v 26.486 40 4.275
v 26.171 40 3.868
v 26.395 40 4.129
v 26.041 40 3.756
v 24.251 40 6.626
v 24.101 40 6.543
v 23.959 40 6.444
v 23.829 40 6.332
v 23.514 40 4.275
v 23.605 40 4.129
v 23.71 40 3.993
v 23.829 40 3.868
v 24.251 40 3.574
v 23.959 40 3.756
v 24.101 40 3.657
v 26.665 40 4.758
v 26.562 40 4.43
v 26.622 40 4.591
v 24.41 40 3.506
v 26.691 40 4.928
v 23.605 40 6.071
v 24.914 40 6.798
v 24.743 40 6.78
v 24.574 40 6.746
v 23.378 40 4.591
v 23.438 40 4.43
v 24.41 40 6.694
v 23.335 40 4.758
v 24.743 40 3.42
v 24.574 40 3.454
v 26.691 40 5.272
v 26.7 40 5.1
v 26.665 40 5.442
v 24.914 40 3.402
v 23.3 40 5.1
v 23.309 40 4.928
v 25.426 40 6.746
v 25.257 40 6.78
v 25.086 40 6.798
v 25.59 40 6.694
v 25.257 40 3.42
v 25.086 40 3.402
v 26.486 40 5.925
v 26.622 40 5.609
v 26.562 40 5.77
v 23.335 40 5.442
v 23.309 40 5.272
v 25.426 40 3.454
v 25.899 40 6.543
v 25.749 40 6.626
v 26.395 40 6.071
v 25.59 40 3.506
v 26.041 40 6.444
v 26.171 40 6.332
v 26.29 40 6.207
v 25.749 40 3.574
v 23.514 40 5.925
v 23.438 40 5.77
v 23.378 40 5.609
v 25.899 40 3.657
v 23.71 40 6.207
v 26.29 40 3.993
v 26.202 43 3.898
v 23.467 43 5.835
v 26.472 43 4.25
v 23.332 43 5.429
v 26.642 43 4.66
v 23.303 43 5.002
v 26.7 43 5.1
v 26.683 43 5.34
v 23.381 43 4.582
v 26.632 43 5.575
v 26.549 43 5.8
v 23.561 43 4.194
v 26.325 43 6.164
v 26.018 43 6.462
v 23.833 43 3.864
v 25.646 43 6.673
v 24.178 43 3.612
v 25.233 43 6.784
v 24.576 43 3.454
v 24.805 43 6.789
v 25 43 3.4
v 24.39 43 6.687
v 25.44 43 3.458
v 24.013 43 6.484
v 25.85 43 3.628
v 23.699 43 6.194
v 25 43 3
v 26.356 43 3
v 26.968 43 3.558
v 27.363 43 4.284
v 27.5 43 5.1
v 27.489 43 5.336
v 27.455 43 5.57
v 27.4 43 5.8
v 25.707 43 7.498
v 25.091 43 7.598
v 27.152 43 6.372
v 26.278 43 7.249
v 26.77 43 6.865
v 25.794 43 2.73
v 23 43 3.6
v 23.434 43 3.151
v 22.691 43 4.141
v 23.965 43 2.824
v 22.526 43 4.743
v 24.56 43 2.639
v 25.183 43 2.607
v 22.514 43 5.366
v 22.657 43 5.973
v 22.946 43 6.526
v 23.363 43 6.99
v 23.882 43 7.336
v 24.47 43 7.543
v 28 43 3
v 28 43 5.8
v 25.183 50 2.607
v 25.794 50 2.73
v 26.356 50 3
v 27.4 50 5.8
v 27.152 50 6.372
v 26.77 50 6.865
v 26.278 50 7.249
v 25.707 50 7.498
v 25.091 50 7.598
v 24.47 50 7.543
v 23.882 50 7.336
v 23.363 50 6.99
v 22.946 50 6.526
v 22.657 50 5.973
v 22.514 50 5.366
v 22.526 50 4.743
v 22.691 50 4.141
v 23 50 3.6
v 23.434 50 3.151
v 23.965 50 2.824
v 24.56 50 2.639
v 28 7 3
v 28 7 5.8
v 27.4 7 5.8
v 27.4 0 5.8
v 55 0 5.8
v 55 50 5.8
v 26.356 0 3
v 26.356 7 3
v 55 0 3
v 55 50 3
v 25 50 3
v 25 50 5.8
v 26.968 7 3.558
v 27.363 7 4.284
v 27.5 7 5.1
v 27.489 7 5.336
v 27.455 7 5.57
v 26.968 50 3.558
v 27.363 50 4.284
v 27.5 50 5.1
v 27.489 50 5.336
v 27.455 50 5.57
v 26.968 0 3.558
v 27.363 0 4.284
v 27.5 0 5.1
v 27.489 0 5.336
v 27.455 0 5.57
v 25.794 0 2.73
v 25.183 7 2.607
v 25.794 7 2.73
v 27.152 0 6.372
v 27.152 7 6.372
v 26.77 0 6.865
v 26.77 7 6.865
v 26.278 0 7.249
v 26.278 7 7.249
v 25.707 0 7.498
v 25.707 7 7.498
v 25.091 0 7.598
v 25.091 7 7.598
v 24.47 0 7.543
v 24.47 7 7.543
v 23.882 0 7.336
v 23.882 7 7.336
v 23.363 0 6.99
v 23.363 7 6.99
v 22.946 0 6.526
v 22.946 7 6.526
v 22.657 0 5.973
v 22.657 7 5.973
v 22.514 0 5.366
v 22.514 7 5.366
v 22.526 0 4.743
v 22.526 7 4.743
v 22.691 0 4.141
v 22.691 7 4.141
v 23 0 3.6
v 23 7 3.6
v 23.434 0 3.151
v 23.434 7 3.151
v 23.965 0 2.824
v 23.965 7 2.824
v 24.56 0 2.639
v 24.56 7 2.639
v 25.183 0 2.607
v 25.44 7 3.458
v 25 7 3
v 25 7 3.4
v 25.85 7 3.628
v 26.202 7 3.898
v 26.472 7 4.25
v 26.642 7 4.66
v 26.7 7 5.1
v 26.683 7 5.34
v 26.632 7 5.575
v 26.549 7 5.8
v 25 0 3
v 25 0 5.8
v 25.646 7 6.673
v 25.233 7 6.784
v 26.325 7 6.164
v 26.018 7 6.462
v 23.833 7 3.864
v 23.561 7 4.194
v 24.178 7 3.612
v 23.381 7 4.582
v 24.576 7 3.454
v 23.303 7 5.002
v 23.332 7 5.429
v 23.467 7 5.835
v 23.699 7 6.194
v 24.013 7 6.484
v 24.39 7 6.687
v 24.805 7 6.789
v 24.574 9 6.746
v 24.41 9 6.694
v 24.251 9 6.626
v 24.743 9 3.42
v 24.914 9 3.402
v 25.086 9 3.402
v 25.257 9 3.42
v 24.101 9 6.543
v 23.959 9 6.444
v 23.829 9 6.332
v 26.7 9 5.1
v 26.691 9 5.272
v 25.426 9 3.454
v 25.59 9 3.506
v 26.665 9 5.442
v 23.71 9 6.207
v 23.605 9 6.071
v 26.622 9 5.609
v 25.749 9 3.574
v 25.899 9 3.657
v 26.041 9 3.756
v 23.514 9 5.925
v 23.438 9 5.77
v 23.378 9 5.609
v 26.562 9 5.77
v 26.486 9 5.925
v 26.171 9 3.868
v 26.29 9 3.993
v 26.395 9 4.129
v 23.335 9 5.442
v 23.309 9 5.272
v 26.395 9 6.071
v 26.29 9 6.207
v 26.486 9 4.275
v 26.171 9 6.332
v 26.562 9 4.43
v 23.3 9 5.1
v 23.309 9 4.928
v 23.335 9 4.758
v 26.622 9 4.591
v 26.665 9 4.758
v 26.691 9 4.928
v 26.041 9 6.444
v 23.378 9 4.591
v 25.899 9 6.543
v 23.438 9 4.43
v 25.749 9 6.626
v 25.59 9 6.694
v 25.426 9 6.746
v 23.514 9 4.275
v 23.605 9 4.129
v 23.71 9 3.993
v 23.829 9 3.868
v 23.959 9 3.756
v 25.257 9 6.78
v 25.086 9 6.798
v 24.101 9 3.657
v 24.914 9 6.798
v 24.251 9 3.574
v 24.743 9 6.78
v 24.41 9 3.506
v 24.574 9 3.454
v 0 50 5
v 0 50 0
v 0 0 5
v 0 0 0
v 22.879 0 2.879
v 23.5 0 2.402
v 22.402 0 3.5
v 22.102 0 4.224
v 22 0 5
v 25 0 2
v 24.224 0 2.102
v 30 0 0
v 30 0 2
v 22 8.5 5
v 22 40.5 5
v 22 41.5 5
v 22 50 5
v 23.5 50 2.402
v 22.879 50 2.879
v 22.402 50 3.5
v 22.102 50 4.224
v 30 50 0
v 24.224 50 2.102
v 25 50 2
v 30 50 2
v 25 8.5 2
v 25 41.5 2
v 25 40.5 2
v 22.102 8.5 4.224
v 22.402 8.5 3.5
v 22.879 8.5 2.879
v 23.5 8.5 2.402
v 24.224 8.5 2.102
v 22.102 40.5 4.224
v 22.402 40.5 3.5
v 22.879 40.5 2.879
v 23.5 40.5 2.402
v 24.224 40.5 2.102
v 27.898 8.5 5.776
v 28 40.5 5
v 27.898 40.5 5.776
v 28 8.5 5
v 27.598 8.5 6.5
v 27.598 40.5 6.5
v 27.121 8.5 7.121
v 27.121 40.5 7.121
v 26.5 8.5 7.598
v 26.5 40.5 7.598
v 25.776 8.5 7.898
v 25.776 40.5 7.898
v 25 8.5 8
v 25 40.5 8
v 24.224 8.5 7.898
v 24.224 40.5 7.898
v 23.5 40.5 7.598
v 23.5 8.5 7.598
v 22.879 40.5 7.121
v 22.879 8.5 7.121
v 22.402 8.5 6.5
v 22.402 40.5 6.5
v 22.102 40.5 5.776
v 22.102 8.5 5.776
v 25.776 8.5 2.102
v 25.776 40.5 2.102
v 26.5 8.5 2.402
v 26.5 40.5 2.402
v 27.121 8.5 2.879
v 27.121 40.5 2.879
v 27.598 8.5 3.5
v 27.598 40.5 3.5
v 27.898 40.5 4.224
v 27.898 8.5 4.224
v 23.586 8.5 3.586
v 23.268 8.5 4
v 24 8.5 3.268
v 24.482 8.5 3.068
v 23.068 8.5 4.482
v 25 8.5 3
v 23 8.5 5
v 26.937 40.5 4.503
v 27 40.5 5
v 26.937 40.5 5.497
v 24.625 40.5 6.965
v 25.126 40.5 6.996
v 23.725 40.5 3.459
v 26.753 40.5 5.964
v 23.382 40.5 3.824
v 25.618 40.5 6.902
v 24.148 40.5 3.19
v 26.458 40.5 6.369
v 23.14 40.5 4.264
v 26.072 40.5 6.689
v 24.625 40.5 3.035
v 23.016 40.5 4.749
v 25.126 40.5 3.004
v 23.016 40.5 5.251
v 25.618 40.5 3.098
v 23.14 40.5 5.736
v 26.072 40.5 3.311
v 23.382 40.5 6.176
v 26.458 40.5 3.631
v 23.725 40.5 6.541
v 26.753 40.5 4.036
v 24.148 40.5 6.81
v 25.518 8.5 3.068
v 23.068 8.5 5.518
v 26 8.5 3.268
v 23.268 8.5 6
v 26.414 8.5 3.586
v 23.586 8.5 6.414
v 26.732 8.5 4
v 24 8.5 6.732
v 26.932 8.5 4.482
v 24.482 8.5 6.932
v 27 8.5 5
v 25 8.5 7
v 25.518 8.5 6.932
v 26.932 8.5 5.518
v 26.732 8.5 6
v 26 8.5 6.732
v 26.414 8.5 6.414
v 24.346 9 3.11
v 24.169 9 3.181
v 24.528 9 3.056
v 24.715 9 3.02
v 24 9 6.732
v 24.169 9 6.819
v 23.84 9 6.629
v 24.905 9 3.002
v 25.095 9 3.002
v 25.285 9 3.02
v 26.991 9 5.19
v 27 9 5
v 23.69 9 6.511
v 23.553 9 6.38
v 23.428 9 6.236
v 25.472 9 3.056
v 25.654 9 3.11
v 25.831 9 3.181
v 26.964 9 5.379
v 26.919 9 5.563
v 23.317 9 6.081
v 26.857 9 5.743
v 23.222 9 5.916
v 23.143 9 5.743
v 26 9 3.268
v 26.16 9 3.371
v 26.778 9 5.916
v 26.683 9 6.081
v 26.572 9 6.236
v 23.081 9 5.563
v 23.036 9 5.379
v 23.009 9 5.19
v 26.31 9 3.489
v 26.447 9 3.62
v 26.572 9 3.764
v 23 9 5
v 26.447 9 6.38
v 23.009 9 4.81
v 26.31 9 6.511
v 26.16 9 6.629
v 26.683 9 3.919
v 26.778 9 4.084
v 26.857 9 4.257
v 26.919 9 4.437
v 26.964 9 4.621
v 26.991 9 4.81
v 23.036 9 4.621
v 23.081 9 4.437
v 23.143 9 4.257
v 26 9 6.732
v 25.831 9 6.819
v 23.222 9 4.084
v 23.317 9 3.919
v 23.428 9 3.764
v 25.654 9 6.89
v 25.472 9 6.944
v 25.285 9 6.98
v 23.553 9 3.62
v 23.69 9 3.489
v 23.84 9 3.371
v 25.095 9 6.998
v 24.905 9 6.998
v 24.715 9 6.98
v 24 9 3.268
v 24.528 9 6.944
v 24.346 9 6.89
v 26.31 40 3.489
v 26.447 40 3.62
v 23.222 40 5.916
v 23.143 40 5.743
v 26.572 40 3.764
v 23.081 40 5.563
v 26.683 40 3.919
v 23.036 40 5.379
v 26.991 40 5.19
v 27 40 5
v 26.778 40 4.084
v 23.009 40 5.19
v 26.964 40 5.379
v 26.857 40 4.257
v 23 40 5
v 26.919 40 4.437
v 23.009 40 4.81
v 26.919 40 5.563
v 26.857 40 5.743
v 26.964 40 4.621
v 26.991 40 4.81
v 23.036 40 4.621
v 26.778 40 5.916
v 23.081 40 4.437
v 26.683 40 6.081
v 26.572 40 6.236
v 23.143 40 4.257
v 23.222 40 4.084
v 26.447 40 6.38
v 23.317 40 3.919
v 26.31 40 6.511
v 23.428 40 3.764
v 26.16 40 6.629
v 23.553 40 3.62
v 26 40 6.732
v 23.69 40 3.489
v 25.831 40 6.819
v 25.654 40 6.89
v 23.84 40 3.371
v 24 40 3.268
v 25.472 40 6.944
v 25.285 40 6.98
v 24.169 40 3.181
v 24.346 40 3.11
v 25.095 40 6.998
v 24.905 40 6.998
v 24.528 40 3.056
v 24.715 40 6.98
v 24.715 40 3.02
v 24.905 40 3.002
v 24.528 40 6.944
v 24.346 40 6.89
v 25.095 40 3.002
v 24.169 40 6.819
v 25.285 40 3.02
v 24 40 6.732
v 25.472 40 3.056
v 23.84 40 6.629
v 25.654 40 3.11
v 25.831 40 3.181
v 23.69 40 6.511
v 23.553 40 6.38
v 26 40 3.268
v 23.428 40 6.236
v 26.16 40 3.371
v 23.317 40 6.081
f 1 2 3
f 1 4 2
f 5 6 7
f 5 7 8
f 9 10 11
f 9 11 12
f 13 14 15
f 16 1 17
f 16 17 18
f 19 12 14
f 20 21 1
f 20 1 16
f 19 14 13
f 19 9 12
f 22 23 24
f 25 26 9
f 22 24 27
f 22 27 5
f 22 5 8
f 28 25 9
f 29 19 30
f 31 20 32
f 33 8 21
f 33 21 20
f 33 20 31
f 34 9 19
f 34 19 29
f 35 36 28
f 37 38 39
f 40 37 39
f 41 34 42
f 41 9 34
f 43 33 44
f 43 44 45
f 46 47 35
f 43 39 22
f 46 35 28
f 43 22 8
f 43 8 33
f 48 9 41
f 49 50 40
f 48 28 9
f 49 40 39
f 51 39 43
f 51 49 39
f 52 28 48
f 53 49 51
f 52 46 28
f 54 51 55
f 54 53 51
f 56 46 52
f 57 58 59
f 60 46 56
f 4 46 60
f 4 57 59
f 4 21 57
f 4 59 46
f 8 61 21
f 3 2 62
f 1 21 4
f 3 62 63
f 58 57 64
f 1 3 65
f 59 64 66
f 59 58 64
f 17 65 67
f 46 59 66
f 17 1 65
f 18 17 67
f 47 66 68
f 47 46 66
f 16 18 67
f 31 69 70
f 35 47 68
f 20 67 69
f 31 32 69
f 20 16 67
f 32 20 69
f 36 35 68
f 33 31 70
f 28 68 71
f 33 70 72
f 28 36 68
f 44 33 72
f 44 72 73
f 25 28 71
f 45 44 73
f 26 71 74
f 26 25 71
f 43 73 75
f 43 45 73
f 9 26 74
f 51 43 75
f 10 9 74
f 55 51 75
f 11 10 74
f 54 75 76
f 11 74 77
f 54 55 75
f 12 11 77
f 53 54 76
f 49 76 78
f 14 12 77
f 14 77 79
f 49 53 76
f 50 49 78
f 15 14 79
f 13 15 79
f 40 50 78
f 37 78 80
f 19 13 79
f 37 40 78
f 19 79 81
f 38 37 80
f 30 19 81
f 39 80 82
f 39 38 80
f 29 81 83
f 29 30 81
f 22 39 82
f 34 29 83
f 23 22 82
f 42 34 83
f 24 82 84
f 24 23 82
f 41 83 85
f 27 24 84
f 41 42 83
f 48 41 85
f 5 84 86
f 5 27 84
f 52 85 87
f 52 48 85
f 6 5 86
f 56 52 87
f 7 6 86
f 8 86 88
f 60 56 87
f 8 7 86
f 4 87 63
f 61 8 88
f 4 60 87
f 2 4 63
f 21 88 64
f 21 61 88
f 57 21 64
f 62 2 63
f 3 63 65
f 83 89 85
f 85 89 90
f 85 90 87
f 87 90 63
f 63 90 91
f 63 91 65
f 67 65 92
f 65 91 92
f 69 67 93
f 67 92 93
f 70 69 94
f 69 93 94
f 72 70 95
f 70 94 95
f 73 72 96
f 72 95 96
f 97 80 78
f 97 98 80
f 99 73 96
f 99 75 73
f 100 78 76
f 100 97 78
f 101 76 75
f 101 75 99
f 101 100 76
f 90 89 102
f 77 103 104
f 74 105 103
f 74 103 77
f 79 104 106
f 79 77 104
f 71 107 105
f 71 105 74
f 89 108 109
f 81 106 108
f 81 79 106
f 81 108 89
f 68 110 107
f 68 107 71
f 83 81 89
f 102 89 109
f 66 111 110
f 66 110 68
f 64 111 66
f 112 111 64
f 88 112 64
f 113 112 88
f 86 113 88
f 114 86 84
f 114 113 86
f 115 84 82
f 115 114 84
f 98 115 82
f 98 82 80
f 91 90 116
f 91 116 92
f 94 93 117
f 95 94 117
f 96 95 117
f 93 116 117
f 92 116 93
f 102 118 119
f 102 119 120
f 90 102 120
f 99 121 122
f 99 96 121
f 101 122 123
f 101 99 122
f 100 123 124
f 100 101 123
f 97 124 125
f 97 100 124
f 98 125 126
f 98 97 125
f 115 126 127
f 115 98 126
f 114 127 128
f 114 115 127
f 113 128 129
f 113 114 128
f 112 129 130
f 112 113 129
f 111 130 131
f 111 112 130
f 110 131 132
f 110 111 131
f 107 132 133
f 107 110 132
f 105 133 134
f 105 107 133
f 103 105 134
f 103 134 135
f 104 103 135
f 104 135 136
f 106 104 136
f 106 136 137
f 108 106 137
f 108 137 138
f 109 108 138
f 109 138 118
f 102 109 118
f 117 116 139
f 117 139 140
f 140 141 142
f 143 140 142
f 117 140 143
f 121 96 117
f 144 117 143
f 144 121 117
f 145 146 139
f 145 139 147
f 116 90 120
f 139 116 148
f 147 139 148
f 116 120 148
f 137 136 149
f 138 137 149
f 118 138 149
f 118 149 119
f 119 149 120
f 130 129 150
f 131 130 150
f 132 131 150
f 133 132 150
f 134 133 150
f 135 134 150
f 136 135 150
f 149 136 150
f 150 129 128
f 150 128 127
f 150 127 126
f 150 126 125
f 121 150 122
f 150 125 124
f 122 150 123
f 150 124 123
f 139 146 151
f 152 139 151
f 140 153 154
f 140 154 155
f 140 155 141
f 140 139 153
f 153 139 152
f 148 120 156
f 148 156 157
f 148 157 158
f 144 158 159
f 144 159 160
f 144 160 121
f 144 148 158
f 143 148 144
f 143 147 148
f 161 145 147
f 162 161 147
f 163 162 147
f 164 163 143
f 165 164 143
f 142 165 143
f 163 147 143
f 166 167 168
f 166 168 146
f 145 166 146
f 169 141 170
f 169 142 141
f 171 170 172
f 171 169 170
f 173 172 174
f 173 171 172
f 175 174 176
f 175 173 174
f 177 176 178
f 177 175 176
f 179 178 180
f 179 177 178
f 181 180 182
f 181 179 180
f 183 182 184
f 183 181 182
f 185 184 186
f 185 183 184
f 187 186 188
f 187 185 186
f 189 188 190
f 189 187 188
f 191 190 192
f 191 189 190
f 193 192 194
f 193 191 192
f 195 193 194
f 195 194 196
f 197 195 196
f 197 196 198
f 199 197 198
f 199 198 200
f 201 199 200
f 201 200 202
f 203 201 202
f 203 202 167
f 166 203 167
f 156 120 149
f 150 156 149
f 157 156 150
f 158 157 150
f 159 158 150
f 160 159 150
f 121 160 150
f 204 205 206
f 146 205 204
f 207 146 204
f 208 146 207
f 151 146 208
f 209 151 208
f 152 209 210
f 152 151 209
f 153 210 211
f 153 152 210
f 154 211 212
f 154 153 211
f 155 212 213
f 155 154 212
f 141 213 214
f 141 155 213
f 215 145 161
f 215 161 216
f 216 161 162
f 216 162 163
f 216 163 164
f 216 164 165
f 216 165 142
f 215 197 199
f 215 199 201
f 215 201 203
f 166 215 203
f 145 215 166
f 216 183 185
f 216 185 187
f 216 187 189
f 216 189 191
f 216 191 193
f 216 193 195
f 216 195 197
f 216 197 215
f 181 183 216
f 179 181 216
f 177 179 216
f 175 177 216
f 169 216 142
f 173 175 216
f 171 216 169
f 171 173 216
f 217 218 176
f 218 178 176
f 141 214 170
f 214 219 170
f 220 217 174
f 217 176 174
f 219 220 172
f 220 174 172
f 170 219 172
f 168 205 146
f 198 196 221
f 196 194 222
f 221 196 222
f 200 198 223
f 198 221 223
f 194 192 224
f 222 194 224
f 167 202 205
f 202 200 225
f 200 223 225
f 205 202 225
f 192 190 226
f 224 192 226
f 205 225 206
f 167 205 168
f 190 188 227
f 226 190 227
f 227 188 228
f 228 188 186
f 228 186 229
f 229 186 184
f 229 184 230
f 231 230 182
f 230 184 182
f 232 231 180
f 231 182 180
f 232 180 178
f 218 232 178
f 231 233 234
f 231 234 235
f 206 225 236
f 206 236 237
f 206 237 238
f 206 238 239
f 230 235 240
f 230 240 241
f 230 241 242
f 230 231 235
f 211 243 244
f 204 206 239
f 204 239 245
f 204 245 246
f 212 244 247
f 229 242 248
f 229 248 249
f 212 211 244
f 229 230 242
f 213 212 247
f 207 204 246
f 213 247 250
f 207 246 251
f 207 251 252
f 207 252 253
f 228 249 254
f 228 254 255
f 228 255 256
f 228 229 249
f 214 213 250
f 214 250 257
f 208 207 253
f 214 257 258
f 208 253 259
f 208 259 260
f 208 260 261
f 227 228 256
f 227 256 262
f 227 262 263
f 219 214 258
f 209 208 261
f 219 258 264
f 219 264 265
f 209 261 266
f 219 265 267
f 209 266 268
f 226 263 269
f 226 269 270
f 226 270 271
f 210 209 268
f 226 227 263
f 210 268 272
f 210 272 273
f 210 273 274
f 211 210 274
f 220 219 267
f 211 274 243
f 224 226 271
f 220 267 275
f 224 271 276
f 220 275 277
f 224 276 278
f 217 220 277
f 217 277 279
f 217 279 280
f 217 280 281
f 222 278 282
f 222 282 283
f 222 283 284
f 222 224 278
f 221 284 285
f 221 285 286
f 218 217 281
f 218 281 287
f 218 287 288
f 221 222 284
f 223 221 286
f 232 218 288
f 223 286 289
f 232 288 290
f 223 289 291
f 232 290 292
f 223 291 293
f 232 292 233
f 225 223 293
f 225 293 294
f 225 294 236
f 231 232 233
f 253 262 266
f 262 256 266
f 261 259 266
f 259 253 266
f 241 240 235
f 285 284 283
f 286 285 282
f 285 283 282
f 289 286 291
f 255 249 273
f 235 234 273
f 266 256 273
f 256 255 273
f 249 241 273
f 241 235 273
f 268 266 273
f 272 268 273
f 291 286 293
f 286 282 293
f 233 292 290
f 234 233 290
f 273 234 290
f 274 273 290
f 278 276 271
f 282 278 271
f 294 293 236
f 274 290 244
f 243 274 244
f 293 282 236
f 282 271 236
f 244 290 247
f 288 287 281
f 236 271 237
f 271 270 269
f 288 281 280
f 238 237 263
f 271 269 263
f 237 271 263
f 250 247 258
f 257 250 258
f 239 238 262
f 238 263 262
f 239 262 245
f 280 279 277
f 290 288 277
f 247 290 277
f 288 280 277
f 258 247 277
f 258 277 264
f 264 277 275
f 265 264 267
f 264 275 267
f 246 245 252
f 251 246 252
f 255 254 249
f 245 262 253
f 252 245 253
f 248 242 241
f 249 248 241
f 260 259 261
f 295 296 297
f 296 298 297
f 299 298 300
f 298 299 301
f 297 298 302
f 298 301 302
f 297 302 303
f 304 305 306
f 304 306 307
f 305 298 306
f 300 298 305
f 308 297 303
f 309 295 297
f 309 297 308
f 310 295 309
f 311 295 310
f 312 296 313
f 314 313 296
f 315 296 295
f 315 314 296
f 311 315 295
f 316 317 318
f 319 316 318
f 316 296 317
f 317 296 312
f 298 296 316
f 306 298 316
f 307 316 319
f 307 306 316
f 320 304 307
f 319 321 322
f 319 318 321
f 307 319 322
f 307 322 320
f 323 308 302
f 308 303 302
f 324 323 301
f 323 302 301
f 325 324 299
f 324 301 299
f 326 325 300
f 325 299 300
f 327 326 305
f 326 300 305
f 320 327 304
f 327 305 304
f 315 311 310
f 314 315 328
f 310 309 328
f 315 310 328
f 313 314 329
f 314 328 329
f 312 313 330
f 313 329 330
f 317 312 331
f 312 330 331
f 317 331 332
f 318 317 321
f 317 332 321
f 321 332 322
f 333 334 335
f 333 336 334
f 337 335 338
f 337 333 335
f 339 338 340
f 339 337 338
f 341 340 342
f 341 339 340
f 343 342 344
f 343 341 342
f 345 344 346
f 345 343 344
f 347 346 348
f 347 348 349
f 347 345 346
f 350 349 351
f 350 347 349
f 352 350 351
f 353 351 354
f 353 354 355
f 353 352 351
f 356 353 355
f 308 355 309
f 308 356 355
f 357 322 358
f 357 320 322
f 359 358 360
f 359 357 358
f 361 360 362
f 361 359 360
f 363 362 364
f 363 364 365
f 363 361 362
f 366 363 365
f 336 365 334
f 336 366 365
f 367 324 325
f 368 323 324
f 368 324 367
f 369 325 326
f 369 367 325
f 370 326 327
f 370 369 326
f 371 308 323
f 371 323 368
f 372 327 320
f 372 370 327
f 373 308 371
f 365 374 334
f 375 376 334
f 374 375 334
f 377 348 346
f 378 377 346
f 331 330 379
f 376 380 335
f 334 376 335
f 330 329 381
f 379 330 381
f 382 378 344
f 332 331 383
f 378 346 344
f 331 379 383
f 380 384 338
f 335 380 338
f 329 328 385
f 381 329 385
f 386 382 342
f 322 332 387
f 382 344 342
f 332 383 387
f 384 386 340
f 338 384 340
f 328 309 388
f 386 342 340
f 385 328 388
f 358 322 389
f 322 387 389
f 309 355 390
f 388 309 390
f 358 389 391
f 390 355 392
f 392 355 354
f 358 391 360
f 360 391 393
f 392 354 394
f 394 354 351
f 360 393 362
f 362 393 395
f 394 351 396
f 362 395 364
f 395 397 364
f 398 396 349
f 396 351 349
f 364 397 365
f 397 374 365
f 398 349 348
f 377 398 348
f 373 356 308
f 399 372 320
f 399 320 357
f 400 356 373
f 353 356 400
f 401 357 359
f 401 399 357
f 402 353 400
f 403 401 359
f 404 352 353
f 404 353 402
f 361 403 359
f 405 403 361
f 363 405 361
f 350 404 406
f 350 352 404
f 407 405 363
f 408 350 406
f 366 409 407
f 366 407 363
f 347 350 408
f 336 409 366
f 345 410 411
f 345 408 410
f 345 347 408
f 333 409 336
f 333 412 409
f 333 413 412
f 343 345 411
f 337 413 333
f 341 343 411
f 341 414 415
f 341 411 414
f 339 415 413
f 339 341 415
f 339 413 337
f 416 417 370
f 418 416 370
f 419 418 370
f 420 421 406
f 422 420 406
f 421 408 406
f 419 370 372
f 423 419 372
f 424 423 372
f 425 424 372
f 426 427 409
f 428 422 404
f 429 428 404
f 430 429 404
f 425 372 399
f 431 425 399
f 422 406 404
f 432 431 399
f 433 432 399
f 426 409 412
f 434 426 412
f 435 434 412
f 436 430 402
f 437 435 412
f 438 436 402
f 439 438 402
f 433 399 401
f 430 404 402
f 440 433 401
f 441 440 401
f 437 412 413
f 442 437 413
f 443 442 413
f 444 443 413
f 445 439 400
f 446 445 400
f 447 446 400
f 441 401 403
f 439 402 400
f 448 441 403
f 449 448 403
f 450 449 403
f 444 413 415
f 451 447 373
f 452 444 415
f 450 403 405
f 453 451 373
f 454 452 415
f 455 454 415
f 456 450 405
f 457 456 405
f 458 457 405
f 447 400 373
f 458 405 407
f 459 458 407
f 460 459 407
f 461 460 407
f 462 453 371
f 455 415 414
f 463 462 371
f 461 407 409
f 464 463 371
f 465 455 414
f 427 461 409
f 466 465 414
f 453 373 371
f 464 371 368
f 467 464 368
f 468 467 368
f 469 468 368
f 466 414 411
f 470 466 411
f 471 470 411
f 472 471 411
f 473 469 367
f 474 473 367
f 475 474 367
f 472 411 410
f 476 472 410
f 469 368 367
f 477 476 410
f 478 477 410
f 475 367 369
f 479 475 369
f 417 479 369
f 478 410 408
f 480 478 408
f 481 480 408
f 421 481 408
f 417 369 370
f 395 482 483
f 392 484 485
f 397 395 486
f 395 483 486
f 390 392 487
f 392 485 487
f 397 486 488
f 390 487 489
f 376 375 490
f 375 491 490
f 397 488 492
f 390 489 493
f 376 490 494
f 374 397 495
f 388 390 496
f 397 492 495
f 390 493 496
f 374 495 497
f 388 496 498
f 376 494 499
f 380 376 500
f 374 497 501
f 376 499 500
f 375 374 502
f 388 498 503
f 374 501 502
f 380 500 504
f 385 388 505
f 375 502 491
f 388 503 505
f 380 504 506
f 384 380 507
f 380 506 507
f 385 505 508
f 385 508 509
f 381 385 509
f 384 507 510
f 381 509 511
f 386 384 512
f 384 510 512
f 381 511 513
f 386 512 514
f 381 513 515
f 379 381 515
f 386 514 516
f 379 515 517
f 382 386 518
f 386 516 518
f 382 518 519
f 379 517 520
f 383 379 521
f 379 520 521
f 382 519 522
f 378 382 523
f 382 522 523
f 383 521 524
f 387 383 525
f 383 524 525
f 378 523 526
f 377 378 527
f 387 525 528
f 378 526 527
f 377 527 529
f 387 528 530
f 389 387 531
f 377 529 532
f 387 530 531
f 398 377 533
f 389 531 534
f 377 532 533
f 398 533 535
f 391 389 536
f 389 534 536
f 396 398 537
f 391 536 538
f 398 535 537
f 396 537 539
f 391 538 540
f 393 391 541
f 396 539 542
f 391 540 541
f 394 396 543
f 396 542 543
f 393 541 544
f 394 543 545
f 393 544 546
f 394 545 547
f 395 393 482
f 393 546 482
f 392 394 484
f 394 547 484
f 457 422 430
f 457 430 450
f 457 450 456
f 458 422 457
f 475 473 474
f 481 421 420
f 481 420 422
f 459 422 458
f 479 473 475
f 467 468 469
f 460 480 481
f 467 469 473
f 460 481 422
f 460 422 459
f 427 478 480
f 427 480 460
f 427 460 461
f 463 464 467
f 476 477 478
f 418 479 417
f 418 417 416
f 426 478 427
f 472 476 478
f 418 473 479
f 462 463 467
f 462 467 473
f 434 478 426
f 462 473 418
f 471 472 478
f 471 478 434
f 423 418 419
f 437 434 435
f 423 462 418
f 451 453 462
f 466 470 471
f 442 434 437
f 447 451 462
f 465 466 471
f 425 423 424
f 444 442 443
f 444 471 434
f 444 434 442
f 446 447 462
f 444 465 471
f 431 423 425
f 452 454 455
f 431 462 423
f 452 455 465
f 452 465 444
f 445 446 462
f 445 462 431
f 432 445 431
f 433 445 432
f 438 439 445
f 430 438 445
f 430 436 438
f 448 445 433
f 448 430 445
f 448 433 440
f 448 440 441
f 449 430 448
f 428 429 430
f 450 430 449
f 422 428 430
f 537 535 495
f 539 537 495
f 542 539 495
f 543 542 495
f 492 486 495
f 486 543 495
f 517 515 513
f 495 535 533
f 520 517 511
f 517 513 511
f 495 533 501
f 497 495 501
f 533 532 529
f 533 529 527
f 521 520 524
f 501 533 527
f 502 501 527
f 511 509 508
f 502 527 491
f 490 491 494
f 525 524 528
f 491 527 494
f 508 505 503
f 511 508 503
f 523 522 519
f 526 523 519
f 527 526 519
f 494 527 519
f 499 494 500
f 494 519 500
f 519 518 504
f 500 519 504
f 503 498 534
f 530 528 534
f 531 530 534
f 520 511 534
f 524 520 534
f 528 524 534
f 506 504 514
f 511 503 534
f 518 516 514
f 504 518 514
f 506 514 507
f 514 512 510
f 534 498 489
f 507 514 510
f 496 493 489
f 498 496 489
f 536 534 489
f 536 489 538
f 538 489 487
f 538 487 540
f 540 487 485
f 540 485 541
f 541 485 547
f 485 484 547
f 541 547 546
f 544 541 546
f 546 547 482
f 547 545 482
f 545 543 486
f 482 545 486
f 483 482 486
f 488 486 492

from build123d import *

# Parameters (mm, degrees)
CYLINDER006_R          = 2
CYLINDER006_DEPTH      = 2
CYLINDER006_ROLL_ANGLE = 90
CYLINDER005_R          = 2
CYLINDER005_DEPTH      = 2
CYLINDER005_ROLL_ANGLE = 90
CYLINDER002_R          = 3
CYLINDER002_DEPTH      = 9.5
CYLINDER002_ROLL_ANGLE = 90
CYLINDER001_R          = 3
CYLINDER001_DEPTH      = 8.5
CYLINDER001_ROLL_ANGLE = 90
BOX001_W               = 5
BOX001_H               = 50
BOX001_DEPTH           = 3
BOX_W                  = 30
BOX_H                  = 50
BOX_DEPTH              = 5
CYLINDER_R             = 3
CYLINDER_DEPTH         = 33
CYLINDER_ROLL_ANGLE    = 90
CYLINDER008_R          = 1.7
CYLINDER008_DEPTH      = 3
CYLINDER008_ROLL_ANGLE = 90
CYLINDER007_R          = 1.7
CYLINDER007_DEPTH      = 3
CYLINDER007_ROLL_ANGLE = 90
CYLINDER004_R          = 2.5
CYLINDER004_DEPTH      = 7
CYLINDER004_ROLL_ANGLE = 90
CYLINDER003_R          = 2.5
CYLINDER003_DEPTH      = 7
CYLINDER003_ROLL_ANGLE = 90
BOX003_W               = 3
BOX003_H               = 36
BOX003_DEPTH           = 3
BOX002_W               = 30
BOX002_H               = 50
BOX002_DEPTH           = 2.8


with BuildPart() as cylinder006:
    # Cylinder006 → Cylinder006 (new body)
    with BuildSketch(Plane.XY):
        Circle(CYLINDER006_R)
    extrude(amount=CYLINDER006_DEPTH)


with BuildPart() as cylinder006_1:
    # Cylinder006 roll: moved
    add(cylinder006.part.rotate(Axis((0, 0, 0), (1, 0, 0)), CYLINDER006_ROLL_ANGLE))


with BuildPart() as cylinder006_2:
    # Cylinder006 placement: moved
    add(cylinder006_1.part.moved(Location((25, 42, 5))))


with BuildPart() as cylinder005:
    # Cylinder005 → Cylinder005 (new body)
    with BuildSketch(Plane.XY):
        Circle(CYLINDER005_R)
    extrude(amount=CYLINDER005_DEPTH)


with BuildPart() as cylinder005_1:
    # Cylinder005 roll: moved
    add(cylinder005.part.rotate(Axis((0, 0, 0), (1, 0, 0)), CYLINDER005_ROLL_ANGLE))


with BuildPart() as cylinder005_2:
    # Cylinder005 placement: moved
    add(cylinder005_1.part.moved(Location((25, 9, 5))))


with BuildPart() as cylinder002:
    # Cylinder002 → Cylinder002 (new body)
    with BuildSketch(Plane.XY):
        Circle(CYLINDER002_R)
    extrude(amount=CYLINDER002_DEPTH)


with BuildPart() as cylinder002_1:
    # Cylinder002 roll: moved
    add(cylinder002.part.rotate(Axis((0, 0, 0), (1, 0, 0)), CYLINDER002_ROLL_ANGLE))


with BuildPart() as cylinder002_2:
    # Cylinder002 placement: moved
    add(cylinder002_1.part.moved(Location((25, 50, 5))))


with BuildPart() as cylinder001:
    # Cylinder001 → Cylinder001 (new body)
    with BuildSketch(Plane.XY):
        Circle(CYLINDER001_R)
    extrude(amount=CYLINDER001_DEPTH)


with BuildPart() as cylinder001_1:
    # Cylinder001 roll: moved
    add(cylinder001.part.rotate(Axis((0, 0, 0), (1, 0, 0)), CYLINDER001_ROLL_ANGLE))


with BuildPart() as cylinder001_2:
    # Cylinder001 placement: moved
    add(cylinder001_1.part.moved(Location((25, 8.5, 5))))


with BuildPart() as cube001:
    # Box001 → Box001 (new body)
    with BuildSketch(Plane(origin=(25, 0, 2), x_dir=(1, 0, 0), z_dir=(0, 0, 1))):
        with Locations((2.5, 25)):
            Rectangle(BOX001_W, BOX001_H)
    extrude(amount=BOX001_DEPTH)


with BuildPart() as cut:
    # Box → Box (new body)
    with BuildSketch(Plane.XY):
        with Locations((15, 25)):
            Rectangle(BOX_W, BOX_H)
    extrude(amount=BOX_DEPTH)

    # Cut: cut Cube001
    add(cube001.part, mode=Mode.SUBTRACT)


with BuildPart() as cut005:
    # Cylinder → Cylinder (new body)
    with BuildSketch(Plane.XY):
        Circle(CYLINDER_R)
    extrude(amount=CYLINDER_DEPTH)


with BuildPart() as cut005_1:
    # Cylinder roll: moved
    add(cut005.part.rotate(Axis((0, 0, 0), (1, 0, 0)), CYLINDER_ROLL_ANGLE))


with BuildPart() as cut005_2:
    # Cylinder placement: moved
    add(cut005_1.part.moved(Location((25, 41.5, 5))))

    # Fusion: union Cut
    add(cut.part)

    # Cut001: cut Cylinder001
    add(cylinder001_2.part, mode=Mode.SUBTRACT)

    # Cut002: cut Cylinder002
    add(cylinder002_2.part, mode=Mode.SUBTRACT)

    # Cut004: cut Cylinder005
    add(cylinder005_2.part, mode=Mode.SUBTRACT)

    # Cut005: cut Cylinder006
    add(cylinder006_2.part, mode=Mode.SUBTRACT)


with BuildPart() as cylinder008:
    # Cylinder008 → Cylinder008 (new body)
    with BuildSketch(Plane.XY):
        Circle(CYLINDER008_R)
    extrude(amount=CYLINDER008_DEPTH)


with BuildPart() as cylinder008_1:
    # Cylinder008 roll: moved
    add(cylinder008.part.rotate(Axis((0, 0, 0), (1, 0, 0)), CYLINDER008_ROLL_ANGLE))


with BuildPart() as cylinder008_2:
    # Cylinder008 placement: moved
    add(cylinder008_1.part.moved(Location((25, 43, 5.1))))


with BuildPart() as cylinder007:
    # Cylinder007 → Cylinder007 (new body)
    with BuildSketch(Plane.XY):
        Circle(CYLINDER007_R)
    extrude(amount=CYLINDER007_DEPTH)


with BuildPart() as cylinder007_1:
    # Cylinder007 roll: moved
    add(cylinder007.part.rotate(Axis((0, 0, 0), (1, 0, 0)), CYLINDER007_ROLL_ANGLE))


with BuildPart() as cylinder007_2:
    # Cylinder007 placement: moved
    add(cylinder007_1.part.moved(Location((25, 9, 5.1))))


with BuildPart() as cylinder004:
    # Cylinder004 → Cylinder004 (new body)
    with BuildSketch(Plane.XY):
        Circle(CYLINDER004_R)
    extrude(amount=CYLINDER004_DEPTH)


with BuildPart() as cylinder004_1:
    # Cylinder004 roll: moved
    add(cylinder004.part.rotate(Axis((0, 0, 0), (1, 0, 0)), CYLINDER004_ROLL_ANGLE))


with BuildPart() as cylinder004_2:
    # Cylinder004 placement: moved
    add(cylinder004_1.part.moved(Location((25, 50, 5.1))))


with BuildPart() as cylinder003:
    # Cylinder003 → Cylinder003 (new body)
    with BuildSketch(Plane.XY):
        Circle(CYLINDER003_R)
    extrude(amount=CYLINDER003_DEPTH)


with BuildPart() as cylinder003_1:
    # Cylinder003 roll: moved
    add(cylinder003.part.rotate(Axis((0, 0, 0), (1, 0, 0)), CYLINDER003_ROLL_ANGLE))


with BuildPart() as cylinder003_2:
    # Cylinder003 placement: moved
    add(cylinder003_1.part.moved(Location((25, 7, 5.1))))


with BuildPart() as cube003:
    # Box003 → Box003 (new body)
    with BuildSketch(Plane(origin=(25, 7, 3), x_dir=(1, 0, 0), z_dir=(0, 0, 1))):
        with Locations((1.5, 18)):
            Rectangle(BOX003_W, BOX003_H)
    extrude(amount=BOX003_DEPTH)


with BuildPart() as fusion004:
    # Box002 → Box002 (new body)
    with BuildSketch(Plane(origin=(25, 0, 3), x_dir=(1, 0, 0), z_dir=(0, 0, 1))):
        with Locations((15, 25)):
            Rectangle(BOX002_W, BOX002_H)
    extrude(amount=BOX002_DEPTH)

    # Cut003: cut Cube003
    add(cube003.part, mode=Mode.SUBTRACT)

    # Fusion001: union Cylinder003
    add(cylinder003_2.part)

    # Fusion002: union Cylinder004
    add(cylinder004_2.part)

    # Fusion003: union Cylinder007
    add(cylinder007_2.part)

    # Fusion004: union Cylinder008
    add(cylinder008_2.part)


solid = Compound([cut005_2.part, fusion004.part])
